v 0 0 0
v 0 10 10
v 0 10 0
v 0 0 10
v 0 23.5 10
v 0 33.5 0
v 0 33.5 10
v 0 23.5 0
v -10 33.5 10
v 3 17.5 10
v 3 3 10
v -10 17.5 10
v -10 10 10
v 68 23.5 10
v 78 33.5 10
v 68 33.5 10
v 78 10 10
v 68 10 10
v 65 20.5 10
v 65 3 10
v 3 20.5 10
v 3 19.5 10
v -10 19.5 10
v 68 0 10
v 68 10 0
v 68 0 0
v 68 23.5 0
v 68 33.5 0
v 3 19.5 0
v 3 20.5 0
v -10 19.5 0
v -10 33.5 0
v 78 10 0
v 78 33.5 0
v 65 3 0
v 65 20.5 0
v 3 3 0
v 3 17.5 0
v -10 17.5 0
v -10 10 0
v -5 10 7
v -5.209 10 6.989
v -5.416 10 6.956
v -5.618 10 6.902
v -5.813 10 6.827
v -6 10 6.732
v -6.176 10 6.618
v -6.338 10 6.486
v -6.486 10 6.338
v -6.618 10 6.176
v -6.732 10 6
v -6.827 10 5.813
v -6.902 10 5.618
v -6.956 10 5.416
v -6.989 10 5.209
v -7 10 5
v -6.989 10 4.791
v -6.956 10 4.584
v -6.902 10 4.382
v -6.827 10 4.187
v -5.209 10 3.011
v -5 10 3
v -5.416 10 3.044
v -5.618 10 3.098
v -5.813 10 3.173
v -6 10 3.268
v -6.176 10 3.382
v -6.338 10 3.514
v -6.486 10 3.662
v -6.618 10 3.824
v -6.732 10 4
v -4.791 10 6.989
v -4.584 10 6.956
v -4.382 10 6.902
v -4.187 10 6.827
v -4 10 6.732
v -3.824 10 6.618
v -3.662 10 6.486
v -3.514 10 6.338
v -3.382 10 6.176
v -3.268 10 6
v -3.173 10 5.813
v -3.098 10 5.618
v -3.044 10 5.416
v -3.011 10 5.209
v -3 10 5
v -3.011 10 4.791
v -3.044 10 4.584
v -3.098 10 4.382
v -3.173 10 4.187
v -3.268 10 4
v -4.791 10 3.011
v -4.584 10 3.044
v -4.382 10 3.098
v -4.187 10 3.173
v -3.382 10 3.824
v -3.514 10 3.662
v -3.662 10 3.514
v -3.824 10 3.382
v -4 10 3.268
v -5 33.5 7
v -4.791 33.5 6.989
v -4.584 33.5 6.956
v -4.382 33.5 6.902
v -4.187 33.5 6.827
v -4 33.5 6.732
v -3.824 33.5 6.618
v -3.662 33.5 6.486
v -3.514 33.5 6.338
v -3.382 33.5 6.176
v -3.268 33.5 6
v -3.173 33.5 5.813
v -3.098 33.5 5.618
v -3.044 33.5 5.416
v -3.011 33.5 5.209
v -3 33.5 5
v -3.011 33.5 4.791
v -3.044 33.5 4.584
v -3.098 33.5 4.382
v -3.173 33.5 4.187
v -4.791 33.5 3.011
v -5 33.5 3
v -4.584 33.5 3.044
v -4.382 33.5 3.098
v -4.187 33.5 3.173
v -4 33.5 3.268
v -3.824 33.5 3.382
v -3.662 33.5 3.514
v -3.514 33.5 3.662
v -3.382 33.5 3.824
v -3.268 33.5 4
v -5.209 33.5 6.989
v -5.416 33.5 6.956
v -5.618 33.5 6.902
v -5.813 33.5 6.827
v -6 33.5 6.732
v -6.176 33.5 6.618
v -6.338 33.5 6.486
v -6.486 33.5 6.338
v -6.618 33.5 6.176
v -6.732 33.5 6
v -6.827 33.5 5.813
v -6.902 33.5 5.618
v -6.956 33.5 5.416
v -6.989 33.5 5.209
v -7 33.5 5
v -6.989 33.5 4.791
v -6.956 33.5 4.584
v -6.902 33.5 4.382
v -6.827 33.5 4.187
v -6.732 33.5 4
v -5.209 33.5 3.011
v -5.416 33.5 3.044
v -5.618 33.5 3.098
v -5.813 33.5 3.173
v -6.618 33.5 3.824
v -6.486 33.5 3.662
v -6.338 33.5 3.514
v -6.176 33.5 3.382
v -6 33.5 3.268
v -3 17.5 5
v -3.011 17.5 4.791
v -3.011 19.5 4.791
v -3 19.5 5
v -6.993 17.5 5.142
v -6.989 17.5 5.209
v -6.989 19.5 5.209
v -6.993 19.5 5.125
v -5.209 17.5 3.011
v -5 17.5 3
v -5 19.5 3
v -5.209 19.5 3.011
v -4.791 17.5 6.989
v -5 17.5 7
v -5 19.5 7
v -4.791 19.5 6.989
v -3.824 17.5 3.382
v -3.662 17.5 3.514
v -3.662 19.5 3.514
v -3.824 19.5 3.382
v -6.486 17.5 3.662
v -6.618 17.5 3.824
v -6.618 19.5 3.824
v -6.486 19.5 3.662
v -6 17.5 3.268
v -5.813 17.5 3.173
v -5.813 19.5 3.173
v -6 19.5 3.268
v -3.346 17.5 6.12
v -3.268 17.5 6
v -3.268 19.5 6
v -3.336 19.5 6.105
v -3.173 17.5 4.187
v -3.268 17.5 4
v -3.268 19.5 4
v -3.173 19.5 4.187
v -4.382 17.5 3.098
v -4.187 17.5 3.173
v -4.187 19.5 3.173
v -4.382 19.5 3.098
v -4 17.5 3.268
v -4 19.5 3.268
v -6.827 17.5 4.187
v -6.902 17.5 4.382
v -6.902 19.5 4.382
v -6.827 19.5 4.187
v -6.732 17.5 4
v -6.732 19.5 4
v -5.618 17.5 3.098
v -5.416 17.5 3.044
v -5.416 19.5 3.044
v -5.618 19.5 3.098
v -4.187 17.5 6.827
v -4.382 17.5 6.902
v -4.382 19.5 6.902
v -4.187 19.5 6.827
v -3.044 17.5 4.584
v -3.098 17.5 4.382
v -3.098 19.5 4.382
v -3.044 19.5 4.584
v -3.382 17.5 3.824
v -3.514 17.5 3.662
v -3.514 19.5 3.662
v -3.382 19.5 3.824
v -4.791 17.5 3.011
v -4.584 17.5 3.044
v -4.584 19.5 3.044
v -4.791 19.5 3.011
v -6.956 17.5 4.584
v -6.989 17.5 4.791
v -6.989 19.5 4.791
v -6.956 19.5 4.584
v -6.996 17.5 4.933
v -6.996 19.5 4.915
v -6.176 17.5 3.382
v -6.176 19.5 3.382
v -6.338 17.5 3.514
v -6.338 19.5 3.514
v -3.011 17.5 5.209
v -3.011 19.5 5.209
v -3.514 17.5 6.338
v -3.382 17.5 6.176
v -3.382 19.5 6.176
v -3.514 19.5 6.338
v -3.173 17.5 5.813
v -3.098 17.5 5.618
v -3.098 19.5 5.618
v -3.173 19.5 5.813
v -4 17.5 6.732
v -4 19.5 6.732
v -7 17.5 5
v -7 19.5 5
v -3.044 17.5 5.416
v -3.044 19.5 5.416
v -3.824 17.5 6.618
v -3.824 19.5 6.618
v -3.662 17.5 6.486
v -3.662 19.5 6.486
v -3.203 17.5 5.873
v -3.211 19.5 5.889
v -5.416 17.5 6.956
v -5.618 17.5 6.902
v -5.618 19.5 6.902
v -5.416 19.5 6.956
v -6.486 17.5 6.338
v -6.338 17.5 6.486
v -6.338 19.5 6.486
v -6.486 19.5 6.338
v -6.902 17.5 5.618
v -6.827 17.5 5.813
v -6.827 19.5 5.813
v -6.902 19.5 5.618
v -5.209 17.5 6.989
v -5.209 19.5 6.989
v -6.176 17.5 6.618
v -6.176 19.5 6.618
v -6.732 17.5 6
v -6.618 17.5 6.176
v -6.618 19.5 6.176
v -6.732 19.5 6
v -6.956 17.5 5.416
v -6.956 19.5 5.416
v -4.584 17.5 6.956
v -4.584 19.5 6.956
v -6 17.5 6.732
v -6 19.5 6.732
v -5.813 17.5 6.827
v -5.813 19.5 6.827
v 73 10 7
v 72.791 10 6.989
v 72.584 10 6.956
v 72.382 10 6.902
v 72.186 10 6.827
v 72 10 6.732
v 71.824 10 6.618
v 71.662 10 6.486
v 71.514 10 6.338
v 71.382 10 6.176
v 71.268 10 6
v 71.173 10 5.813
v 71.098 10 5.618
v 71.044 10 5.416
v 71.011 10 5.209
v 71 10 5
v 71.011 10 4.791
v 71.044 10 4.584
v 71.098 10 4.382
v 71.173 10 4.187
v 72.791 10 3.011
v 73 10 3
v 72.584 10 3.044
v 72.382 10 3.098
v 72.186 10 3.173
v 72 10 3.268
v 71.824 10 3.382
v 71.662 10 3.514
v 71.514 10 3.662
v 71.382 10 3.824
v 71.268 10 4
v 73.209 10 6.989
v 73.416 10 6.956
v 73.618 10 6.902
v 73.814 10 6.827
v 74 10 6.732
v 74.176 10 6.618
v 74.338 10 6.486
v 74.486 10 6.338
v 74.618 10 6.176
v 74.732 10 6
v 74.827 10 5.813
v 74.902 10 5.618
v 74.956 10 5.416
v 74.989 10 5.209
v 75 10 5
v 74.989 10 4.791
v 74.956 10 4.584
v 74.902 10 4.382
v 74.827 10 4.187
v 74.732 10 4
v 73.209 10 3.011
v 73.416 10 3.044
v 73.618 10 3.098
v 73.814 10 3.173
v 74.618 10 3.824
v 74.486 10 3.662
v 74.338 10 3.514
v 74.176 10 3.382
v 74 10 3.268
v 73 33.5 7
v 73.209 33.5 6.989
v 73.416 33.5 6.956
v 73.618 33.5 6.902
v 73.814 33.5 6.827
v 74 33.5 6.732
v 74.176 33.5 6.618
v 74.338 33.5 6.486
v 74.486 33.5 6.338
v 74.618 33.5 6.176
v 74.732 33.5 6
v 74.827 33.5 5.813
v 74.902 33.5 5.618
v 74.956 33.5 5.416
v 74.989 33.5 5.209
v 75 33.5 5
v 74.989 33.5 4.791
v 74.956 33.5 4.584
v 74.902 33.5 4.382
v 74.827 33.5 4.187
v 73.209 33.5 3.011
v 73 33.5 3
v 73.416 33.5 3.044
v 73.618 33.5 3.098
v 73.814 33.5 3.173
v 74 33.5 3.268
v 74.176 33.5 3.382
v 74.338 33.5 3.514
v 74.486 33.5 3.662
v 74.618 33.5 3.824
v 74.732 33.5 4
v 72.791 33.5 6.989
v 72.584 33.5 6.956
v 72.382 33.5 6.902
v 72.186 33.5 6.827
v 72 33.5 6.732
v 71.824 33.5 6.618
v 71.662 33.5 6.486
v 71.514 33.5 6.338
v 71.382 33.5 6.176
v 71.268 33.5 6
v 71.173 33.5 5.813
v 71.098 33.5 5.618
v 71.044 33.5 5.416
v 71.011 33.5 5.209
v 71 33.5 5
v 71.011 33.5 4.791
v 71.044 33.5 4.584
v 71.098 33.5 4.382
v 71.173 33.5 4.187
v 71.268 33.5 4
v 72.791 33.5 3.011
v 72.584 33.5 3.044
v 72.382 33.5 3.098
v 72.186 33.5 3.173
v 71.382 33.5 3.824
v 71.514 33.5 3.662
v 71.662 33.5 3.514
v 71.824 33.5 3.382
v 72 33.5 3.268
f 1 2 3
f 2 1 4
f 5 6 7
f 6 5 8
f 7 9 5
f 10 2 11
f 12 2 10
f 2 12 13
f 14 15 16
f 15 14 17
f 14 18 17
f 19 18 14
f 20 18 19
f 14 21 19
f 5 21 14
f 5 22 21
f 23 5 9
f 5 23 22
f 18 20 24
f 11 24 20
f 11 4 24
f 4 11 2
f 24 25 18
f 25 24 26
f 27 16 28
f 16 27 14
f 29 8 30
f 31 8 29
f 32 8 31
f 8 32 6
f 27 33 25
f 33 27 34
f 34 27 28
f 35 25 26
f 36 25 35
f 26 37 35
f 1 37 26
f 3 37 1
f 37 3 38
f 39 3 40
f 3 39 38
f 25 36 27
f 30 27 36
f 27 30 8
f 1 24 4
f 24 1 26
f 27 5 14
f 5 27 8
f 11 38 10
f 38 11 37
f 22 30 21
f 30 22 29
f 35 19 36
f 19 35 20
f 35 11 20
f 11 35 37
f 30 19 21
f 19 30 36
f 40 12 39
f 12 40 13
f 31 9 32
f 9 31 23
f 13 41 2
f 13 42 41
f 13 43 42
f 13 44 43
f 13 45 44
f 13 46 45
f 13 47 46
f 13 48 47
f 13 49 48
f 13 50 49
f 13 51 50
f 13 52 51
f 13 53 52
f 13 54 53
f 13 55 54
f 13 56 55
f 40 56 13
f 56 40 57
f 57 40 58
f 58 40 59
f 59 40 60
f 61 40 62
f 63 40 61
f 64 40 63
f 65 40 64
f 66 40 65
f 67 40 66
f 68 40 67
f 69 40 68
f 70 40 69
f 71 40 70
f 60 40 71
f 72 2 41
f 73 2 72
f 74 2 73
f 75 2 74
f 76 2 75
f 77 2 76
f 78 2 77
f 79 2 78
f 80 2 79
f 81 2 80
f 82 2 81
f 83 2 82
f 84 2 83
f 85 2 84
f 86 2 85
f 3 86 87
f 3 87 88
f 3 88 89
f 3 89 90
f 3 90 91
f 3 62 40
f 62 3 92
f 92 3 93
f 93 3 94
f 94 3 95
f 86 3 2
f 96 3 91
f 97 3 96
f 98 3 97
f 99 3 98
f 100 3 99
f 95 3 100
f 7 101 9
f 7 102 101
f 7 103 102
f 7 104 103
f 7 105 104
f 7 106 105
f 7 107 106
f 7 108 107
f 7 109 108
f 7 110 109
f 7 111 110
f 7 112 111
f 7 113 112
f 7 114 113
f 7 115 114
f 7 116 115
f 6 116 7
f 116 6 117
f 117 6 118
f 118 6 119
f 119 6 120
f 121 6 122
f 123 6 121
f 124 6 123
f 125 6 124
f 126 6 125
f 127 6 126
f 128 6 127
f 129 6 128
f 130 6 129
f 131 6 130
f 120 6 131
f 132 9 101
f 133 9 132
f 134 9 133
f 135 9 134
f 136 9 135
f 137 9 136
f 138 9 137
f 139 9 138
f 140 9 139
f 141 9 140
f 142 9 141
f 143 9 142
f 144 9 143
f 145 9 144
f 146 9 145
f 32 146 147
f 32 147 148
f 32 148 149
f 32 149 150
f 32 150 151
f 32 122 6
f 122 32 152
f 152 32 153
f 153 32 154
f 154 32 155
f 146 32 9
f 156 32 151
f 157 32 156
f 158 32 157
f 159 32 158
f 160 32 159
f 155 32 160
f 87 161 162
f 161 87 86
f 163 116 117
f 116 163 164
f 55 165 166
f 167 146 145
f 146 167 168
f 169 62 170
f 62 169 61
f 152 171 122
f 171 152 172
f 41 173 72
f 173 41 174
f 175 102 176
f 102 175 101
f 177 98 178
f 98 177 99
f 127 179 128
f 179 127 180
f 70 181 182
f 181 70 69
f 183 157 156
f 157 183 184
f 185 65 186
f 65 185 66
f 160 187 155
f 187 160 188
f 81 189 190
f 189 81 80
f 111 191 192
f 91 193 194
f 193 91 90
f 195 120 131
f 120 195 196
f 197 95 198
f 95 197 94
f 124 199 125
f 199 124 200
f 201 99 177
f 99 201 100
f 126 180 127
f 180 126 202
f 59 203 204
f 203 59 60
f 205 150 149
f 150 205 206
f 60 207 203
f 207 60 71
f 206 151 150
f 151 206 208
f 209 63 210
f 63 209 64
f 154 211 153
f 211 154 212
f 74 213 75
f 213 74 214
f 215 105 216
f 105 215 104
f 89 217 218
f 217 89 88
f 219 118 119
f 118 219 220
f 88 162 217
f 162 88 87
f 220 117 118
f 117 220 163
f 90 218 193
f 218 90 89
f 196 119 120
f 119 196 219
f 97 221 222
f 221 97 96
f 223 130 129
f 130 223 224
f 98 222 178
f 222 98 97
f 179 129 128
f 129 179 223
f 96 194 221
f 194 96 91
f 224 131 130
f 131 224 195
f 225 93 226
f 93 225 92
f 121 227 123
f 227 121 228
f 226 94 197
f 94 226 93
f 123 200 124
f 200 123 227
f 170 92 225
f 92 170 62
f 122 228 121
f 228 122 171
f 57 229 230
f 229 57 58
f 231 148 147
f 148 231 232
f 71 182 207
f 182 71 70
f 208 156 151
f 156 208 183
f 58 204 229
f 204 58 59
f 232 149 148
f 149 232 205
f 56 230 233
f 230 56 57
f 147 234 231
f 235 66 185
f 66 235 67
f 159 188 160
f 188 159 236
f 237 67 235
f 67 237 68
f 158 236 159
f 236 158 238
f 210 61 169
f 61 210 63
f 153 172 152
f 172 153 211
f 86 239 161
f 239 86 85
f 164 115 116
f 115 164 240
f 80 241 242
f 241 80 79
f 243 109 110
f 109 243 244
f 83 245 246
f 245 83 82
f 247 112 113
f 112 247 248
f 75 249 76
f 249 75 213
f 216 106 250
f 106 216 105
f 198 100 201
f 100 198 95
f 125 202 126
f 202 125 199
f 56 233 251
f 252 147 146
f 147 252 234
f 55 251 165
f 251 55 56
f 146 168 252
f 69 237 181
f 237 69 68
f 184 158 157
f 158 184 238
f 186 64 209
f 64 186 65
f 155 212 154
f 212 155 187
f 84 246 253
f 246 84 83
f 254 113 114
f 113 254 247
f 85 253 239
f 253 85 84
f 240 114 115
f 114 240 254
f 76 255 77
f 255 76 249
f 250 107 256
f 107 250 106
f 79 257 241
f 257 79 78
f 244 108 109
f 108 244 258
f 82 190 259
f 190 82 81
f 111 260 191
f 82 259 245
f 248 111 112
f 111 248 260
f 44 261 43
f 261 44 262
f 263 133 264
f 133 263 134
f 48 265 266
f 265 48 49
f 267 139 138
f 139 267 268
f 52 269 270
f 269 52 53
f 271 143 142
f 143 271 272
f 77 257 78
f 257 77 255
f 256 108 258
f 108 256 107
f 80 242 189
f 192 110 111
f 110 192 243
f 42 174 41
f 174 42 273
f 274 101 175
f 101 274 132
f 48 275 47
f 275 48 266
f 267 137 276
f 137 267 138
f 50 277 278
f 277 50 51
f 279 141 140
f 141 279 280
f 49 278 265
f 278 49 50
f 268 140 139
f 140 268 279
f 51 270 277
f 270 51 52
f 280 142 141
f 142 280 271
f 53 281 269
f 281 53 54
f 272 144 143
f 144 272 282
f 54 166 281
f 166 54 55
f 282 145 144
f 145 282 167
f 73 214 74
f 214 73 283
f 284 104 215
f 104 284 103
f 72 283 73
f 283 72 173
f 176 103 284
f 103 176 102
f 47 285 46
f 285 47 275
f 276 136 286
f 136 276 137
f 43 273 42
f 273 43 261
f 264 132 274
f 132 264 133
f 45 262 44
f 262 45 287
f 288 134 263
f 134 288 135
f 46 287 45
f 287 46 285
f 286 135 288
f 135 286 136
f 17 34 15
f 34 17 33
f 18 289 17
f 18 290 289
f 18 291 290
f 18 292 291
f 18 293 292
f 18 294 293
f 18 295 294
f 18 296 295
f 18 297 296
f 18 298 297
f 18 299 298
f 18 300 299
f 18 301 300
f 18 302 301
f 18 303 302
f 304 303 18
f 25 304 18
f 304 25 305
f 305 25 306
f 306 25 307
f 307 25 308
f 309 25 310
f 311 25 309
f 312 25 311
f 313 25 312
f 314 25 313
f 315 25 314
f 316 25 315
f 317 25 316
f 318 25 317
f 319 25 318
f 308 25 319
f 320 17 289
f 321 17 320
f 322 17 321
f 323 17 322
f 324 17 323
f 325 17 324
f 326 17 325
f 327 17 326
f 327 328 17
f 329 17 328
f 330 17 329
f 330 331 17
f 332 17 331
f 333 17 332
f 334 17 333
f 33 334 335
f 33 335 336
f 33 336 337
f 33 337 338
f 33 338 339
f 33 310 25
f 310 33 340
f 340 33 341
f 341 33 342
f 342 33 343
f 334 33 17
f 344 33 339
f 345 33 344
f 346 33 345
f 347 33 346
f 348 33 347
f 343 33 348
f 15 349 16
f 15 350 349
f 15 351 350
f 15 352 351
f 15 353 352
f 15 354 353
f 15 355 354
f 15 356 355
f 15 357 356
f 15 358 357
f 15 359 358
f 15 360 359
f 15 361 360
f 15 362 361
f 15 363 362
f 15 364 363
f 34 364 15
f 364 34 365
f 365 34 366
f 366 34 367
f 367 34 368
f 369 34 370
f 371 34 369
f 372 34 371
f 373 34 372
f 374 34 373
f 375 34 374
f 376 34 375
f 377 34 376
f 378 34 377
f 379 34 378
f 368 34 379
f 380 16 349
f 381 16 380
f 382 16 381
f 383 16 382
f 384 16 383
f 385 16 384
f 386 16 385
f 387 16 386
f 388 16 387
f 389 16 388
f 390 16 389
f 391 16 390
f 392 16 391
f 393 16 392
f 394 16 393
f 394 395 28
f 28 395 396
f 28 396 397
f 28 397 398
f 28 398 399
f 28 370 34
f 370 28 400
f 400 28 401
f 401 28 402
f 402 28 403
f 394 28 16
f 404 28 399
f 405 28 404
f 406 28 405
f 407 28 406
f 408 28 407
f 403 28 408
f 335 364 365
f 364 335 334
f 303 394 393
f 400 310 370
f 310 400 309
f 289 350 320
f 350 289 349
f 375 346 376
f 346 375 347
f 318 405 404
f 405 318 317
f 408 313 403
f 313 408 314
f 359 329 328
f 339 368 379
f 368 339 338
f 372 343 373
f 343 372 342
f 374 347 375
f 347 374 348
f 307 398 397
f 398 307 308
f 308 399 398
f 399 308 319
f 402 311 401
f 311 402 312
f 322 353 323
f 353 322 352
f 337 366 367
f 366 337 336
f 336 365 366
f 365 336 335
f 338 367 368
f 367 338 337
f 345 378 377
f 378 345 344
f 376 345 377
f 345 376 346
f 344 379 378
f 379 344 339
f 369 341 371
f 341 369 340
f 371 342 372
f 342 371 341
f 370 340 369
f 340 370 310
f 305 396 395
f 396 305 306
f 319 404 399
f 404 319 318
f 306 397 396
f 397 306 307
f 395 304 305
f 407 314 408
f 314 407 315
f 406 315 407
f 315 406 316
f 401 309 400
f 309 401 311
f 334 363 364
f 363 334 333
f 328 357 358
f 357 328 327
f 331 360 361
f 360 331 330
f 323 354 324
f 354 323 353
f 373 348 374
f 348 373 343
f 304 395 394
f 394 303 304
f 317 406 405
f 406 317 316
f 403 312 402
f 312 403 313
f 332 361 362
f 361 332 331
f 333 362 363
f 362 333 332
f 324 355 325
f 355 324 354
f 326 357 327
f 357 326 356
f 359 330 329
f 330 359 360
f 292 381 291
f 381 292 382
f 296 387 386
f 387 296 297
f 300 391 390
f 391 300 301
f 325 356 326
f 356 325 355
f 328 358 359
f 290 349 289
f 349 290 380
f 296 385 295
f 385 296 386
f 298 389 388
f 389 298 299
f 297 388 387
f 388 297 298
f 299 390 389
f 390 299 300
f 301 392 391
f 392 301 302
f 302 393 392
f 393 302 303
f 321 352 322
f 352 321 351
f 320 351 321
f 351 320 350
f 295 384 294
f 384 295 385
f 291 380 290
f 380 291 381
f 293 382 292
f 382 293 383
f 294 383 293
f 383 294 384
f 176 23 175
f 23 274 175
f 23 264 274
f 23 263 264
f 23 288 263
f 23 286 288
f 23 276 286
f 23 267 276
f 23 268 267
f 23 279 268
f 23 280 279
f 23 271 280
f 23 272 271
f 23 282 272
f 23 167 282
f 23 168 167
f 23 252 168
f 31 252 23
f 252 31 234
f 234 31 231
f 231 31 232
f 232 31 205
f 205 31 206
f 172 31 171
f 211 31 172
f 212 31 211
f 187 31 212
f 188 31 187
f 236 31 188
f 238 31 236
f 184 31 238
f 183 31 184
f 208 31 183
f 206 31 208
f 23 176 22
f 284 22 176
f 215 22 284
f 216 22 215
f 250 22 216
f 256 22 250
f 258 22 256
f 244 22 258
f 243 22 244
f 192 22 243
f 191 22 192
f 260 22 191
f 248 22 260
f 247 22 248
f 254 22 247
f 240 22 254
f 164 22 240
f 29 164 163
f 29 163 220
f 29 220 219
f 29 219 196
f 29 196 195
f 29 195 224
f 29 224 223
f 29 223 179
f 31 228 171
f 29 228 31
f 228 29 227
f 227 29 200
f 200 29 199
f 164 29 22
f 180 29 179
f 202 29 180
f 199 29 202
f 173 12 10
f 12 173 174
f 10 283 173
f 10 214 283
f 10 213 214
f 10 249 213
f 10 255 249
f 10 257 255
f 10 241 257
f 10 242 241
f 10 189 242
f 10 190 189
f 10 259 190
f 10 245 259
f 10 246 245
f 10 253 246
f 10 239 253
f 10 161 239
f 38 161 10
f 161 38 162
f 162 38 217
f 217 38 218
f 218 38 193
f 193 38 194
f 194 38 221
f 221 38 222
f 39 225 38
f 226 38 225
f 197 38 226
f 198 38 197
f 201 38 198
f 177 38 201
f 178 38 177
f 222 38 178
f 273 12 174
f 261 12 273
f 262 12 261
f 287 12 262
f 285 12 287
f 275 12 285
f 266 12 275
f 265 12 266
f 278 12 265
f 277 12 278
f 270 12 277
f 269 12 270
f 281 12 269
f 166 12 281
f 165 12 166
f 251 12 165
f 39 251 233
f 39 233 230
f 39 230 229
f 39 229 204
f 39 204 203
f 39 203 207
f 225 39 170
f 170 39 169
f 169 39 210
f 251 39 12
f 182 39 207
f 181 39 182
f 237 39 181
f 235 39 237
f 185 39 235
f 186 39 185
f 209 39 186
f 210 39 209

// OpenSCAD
// RaspberryPi Sleeve Holder

thickness=3;
thickness2=thickness*2;
width=10;

e=0.001;
e2=e*2;

sleeveW=62;
sleeveH=17.5;
ventilationSpace=10;

module rpiSleeveHolder() {
    difference() {
        union() {
            frame();
            translate([-screwBox,ventilationSpace,0]) screw();
            translate([sleeveW+thickness2,ventilationSpace,0]) screw();
        }
        translate([-25,sleeveH,0]) cube([50,2,50]);
    }
}
module frame() {
    difference() {
        cube([sleeveW+thickness2, sleeveH+thickness2, width]);
        translate([thickness, thickness, -e])cube([sleeveW, sleeveH, width+e2]);
    }
}

screwBox=10;
screwD=4;
module screw() {
    difference() {
        cube([screwBox, sleeveH+thickness2, screwBox]);
        translate([screwBox/2,-e,screwBox/2]) rotate([-90,0,0])
            cylinder($fn=60,d=screwD, h=sleeveH+thickness2+e2);
    }
}

rpiSleeveHolder();
